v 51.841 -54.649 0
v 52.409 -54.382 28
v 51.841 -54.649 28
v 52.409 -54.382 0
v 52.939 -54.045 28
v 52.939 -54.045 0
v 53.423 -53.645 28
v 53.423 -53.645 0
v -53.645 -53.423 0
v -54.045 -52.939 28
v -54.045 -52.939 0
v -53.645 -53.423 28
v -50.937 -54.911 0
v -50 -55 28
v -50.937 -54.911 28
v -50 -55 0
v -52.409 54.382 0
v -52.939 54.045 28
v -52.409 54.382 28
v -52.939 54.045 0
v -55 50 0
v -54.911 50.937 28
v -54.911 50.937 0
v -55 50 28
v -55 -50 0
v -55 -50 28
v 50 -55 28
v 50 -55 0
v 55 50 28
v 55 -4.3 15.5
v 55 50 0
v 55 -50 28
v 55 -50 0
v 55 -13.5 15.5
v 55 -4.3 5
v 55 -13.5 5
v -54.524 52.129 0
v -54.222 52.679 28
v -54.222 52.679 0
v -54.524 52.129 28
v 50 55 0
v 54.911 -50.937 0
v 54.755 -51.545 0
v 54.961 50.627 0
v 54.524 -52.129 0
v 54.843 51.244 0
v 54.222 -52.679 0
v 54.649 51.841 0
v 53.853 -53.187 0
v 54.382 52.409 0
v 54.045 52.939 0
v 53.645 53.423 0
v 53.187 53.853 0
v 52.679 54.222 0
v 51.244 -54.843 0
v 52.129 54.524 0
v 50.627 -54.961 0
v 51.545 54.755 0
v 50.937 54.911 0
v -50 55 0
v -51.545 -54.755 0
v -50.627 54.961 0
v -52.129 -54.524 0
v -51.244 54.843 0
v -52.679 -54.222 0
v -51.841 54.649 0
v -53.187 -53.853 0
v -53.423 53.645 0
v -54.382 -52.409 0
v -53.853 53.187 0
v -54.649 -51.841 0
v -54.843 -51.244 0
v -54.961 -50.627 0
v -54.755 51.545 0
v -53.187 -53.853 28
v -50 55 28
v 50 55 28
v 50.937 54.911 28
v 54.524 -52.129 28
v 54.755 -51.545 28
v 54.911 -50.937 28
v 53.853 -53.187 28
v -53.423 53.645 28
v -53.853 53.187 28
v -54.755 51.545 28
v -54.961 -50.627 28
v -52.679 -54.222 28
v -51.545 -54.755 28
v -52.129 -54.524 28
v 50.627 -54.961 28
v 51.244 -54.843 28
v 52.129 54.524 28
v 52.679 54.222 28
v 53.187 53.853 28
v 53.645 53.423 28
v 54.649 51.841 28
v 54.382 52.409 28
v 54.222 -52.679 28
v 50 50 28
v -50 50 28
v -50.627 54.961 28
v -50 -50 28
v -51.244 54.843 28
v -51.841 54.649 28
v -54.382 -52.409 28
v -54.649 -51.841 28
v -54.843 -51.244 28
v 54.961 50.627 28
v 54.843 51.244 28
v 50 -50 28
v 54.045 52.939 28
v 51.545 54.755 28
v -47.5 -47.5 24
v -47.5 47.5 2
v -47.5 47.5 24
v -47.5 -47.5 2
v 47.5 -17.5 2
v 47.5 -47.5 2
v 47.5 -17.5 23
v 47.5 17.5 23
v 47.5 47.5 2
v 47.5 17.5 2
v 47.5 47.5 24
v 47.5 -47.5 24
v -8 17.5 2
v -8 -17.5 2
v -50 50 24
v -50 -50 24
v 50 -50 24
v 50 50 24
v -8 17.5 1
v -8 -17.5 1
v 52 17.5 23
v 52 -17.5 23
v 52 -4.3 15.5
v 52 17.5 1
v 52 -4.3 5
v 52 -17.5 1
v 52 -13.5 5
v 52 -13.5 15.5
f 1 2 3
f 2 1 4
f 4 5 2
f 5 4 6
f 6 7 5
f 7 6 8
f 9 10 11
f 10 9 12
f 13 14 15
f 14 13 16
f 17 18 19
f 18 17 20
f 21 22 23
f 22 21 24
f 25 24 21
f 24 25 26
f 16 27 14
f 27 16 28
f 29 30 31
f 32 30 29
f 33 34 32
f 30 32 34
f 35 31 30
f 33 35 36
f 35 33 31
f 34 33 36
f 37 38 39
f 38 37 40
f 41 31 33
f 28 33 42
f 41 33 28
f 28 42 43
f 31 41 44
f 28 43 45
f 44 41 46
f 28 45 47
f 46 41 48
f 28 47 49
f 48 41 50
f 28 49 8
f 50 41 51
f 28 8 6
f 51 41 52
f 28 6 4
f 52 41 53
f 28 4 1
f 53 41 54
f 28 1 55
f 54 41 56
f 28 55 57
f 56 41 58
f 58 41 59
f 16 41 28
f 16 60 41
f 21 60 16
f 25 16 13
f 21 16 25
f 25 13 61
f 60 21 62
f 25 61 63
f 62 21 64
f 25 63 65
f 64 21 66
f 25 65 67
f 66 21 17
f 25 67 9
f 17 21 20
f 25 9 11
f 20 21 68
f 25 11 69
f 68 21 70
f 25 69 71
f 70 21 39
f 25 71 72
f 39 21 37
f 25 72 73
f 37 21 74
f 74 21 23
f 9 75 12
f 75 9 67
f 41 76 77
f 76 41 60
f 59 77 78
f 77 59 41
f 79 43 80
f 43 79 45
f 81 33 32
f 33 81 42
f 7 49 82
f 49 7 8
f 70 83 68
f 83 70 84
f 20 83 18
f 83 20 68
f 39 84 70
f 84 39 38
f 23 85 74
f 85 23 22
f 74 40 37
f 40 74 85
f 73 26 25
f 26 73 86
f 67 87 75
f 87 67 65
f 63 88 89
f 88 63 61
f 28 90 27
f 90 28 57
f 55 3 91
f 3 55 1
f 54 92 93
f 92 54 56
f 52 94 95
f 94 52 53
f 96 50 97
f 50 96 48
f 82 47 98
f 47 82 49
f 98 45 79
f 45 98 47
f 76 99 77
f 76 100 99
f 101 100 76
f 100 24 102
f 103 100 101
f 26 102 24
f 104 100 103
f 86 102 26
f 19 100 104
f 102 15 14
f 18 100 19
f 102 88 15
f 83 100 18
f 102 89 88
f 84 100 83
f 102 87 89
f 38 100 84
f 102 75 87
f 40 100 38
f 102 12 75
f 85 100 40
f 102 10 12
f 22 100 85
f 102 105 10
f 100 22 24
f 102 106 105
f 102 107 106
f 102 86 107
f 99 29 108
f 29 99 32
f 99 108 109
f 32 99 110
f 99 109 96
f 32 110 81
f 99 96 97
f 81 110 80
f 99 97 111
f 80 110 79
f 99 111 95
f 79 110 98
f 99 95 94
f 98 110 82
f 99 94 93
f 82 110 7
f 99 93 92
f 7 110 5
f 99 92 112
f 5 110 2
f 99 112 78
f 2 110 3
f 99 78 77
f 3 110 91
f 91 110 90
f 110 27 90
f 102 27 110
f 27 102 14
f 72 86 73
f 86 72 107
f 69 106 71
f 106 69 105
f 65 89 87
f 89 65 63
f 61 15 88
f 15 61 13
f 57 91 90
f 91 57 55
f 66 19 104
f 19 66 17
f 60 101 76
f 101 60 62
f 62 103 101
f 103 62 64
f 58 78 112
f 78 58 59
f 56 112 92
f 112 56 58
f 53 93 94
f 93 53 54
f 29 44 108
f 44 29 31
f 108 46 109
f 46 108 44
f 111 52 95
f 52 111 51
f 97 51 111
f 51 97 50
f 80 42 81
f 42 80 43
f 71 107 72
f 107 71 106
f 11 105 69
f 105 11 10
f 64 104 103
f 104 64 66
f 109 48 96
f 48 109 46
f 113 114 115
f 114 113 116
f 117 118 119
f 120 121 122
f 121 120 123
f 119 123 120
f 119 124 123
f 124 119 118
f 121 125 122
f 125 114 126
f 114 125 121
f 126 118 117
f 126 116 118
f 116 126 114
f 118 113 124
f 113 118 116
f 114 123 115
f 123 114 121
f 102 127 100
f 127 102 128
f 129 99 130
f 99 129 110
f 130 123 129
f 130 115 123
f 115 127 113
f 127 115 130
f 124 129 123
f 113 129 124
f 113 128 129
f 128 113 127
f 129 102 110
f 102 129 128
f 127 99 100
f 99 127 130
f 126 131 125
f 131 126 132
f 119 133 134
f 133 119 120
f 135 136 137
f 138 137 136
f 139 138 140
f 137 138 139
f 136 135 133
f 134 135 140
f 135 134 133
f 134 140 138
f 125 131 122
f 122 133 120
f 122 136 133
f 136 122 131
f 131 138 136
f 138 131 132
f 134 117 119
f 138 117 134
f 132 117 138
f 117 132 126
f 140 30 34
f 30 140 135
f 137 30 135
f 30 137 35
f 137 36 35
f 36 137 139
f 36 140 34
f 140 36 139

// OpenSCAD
$fn=50;

module dps() {
  color("green") union() {
    translate([30,35/2,22/2]) cube ([60,35,22],center=true);
    translate([60,4,4]) cube ([10,9.2,10.5]);
  }
}

module box() {
  difference() {
    linear_extrude (height=28) offset (r=5) square ([100,100], center=true);
    translate ([0,0,30/2+2]) cube ([95,95,30], center=true);
    translate ([0,0,4/2+24+0.05]) cube([100,100,4.1], center=true);
  }
}

difference() {
  box();
  translate([-8,-35/2,1]) dps();
}
%translate ([0,0,4/2+24]) cube([100,100,4], center=true);
